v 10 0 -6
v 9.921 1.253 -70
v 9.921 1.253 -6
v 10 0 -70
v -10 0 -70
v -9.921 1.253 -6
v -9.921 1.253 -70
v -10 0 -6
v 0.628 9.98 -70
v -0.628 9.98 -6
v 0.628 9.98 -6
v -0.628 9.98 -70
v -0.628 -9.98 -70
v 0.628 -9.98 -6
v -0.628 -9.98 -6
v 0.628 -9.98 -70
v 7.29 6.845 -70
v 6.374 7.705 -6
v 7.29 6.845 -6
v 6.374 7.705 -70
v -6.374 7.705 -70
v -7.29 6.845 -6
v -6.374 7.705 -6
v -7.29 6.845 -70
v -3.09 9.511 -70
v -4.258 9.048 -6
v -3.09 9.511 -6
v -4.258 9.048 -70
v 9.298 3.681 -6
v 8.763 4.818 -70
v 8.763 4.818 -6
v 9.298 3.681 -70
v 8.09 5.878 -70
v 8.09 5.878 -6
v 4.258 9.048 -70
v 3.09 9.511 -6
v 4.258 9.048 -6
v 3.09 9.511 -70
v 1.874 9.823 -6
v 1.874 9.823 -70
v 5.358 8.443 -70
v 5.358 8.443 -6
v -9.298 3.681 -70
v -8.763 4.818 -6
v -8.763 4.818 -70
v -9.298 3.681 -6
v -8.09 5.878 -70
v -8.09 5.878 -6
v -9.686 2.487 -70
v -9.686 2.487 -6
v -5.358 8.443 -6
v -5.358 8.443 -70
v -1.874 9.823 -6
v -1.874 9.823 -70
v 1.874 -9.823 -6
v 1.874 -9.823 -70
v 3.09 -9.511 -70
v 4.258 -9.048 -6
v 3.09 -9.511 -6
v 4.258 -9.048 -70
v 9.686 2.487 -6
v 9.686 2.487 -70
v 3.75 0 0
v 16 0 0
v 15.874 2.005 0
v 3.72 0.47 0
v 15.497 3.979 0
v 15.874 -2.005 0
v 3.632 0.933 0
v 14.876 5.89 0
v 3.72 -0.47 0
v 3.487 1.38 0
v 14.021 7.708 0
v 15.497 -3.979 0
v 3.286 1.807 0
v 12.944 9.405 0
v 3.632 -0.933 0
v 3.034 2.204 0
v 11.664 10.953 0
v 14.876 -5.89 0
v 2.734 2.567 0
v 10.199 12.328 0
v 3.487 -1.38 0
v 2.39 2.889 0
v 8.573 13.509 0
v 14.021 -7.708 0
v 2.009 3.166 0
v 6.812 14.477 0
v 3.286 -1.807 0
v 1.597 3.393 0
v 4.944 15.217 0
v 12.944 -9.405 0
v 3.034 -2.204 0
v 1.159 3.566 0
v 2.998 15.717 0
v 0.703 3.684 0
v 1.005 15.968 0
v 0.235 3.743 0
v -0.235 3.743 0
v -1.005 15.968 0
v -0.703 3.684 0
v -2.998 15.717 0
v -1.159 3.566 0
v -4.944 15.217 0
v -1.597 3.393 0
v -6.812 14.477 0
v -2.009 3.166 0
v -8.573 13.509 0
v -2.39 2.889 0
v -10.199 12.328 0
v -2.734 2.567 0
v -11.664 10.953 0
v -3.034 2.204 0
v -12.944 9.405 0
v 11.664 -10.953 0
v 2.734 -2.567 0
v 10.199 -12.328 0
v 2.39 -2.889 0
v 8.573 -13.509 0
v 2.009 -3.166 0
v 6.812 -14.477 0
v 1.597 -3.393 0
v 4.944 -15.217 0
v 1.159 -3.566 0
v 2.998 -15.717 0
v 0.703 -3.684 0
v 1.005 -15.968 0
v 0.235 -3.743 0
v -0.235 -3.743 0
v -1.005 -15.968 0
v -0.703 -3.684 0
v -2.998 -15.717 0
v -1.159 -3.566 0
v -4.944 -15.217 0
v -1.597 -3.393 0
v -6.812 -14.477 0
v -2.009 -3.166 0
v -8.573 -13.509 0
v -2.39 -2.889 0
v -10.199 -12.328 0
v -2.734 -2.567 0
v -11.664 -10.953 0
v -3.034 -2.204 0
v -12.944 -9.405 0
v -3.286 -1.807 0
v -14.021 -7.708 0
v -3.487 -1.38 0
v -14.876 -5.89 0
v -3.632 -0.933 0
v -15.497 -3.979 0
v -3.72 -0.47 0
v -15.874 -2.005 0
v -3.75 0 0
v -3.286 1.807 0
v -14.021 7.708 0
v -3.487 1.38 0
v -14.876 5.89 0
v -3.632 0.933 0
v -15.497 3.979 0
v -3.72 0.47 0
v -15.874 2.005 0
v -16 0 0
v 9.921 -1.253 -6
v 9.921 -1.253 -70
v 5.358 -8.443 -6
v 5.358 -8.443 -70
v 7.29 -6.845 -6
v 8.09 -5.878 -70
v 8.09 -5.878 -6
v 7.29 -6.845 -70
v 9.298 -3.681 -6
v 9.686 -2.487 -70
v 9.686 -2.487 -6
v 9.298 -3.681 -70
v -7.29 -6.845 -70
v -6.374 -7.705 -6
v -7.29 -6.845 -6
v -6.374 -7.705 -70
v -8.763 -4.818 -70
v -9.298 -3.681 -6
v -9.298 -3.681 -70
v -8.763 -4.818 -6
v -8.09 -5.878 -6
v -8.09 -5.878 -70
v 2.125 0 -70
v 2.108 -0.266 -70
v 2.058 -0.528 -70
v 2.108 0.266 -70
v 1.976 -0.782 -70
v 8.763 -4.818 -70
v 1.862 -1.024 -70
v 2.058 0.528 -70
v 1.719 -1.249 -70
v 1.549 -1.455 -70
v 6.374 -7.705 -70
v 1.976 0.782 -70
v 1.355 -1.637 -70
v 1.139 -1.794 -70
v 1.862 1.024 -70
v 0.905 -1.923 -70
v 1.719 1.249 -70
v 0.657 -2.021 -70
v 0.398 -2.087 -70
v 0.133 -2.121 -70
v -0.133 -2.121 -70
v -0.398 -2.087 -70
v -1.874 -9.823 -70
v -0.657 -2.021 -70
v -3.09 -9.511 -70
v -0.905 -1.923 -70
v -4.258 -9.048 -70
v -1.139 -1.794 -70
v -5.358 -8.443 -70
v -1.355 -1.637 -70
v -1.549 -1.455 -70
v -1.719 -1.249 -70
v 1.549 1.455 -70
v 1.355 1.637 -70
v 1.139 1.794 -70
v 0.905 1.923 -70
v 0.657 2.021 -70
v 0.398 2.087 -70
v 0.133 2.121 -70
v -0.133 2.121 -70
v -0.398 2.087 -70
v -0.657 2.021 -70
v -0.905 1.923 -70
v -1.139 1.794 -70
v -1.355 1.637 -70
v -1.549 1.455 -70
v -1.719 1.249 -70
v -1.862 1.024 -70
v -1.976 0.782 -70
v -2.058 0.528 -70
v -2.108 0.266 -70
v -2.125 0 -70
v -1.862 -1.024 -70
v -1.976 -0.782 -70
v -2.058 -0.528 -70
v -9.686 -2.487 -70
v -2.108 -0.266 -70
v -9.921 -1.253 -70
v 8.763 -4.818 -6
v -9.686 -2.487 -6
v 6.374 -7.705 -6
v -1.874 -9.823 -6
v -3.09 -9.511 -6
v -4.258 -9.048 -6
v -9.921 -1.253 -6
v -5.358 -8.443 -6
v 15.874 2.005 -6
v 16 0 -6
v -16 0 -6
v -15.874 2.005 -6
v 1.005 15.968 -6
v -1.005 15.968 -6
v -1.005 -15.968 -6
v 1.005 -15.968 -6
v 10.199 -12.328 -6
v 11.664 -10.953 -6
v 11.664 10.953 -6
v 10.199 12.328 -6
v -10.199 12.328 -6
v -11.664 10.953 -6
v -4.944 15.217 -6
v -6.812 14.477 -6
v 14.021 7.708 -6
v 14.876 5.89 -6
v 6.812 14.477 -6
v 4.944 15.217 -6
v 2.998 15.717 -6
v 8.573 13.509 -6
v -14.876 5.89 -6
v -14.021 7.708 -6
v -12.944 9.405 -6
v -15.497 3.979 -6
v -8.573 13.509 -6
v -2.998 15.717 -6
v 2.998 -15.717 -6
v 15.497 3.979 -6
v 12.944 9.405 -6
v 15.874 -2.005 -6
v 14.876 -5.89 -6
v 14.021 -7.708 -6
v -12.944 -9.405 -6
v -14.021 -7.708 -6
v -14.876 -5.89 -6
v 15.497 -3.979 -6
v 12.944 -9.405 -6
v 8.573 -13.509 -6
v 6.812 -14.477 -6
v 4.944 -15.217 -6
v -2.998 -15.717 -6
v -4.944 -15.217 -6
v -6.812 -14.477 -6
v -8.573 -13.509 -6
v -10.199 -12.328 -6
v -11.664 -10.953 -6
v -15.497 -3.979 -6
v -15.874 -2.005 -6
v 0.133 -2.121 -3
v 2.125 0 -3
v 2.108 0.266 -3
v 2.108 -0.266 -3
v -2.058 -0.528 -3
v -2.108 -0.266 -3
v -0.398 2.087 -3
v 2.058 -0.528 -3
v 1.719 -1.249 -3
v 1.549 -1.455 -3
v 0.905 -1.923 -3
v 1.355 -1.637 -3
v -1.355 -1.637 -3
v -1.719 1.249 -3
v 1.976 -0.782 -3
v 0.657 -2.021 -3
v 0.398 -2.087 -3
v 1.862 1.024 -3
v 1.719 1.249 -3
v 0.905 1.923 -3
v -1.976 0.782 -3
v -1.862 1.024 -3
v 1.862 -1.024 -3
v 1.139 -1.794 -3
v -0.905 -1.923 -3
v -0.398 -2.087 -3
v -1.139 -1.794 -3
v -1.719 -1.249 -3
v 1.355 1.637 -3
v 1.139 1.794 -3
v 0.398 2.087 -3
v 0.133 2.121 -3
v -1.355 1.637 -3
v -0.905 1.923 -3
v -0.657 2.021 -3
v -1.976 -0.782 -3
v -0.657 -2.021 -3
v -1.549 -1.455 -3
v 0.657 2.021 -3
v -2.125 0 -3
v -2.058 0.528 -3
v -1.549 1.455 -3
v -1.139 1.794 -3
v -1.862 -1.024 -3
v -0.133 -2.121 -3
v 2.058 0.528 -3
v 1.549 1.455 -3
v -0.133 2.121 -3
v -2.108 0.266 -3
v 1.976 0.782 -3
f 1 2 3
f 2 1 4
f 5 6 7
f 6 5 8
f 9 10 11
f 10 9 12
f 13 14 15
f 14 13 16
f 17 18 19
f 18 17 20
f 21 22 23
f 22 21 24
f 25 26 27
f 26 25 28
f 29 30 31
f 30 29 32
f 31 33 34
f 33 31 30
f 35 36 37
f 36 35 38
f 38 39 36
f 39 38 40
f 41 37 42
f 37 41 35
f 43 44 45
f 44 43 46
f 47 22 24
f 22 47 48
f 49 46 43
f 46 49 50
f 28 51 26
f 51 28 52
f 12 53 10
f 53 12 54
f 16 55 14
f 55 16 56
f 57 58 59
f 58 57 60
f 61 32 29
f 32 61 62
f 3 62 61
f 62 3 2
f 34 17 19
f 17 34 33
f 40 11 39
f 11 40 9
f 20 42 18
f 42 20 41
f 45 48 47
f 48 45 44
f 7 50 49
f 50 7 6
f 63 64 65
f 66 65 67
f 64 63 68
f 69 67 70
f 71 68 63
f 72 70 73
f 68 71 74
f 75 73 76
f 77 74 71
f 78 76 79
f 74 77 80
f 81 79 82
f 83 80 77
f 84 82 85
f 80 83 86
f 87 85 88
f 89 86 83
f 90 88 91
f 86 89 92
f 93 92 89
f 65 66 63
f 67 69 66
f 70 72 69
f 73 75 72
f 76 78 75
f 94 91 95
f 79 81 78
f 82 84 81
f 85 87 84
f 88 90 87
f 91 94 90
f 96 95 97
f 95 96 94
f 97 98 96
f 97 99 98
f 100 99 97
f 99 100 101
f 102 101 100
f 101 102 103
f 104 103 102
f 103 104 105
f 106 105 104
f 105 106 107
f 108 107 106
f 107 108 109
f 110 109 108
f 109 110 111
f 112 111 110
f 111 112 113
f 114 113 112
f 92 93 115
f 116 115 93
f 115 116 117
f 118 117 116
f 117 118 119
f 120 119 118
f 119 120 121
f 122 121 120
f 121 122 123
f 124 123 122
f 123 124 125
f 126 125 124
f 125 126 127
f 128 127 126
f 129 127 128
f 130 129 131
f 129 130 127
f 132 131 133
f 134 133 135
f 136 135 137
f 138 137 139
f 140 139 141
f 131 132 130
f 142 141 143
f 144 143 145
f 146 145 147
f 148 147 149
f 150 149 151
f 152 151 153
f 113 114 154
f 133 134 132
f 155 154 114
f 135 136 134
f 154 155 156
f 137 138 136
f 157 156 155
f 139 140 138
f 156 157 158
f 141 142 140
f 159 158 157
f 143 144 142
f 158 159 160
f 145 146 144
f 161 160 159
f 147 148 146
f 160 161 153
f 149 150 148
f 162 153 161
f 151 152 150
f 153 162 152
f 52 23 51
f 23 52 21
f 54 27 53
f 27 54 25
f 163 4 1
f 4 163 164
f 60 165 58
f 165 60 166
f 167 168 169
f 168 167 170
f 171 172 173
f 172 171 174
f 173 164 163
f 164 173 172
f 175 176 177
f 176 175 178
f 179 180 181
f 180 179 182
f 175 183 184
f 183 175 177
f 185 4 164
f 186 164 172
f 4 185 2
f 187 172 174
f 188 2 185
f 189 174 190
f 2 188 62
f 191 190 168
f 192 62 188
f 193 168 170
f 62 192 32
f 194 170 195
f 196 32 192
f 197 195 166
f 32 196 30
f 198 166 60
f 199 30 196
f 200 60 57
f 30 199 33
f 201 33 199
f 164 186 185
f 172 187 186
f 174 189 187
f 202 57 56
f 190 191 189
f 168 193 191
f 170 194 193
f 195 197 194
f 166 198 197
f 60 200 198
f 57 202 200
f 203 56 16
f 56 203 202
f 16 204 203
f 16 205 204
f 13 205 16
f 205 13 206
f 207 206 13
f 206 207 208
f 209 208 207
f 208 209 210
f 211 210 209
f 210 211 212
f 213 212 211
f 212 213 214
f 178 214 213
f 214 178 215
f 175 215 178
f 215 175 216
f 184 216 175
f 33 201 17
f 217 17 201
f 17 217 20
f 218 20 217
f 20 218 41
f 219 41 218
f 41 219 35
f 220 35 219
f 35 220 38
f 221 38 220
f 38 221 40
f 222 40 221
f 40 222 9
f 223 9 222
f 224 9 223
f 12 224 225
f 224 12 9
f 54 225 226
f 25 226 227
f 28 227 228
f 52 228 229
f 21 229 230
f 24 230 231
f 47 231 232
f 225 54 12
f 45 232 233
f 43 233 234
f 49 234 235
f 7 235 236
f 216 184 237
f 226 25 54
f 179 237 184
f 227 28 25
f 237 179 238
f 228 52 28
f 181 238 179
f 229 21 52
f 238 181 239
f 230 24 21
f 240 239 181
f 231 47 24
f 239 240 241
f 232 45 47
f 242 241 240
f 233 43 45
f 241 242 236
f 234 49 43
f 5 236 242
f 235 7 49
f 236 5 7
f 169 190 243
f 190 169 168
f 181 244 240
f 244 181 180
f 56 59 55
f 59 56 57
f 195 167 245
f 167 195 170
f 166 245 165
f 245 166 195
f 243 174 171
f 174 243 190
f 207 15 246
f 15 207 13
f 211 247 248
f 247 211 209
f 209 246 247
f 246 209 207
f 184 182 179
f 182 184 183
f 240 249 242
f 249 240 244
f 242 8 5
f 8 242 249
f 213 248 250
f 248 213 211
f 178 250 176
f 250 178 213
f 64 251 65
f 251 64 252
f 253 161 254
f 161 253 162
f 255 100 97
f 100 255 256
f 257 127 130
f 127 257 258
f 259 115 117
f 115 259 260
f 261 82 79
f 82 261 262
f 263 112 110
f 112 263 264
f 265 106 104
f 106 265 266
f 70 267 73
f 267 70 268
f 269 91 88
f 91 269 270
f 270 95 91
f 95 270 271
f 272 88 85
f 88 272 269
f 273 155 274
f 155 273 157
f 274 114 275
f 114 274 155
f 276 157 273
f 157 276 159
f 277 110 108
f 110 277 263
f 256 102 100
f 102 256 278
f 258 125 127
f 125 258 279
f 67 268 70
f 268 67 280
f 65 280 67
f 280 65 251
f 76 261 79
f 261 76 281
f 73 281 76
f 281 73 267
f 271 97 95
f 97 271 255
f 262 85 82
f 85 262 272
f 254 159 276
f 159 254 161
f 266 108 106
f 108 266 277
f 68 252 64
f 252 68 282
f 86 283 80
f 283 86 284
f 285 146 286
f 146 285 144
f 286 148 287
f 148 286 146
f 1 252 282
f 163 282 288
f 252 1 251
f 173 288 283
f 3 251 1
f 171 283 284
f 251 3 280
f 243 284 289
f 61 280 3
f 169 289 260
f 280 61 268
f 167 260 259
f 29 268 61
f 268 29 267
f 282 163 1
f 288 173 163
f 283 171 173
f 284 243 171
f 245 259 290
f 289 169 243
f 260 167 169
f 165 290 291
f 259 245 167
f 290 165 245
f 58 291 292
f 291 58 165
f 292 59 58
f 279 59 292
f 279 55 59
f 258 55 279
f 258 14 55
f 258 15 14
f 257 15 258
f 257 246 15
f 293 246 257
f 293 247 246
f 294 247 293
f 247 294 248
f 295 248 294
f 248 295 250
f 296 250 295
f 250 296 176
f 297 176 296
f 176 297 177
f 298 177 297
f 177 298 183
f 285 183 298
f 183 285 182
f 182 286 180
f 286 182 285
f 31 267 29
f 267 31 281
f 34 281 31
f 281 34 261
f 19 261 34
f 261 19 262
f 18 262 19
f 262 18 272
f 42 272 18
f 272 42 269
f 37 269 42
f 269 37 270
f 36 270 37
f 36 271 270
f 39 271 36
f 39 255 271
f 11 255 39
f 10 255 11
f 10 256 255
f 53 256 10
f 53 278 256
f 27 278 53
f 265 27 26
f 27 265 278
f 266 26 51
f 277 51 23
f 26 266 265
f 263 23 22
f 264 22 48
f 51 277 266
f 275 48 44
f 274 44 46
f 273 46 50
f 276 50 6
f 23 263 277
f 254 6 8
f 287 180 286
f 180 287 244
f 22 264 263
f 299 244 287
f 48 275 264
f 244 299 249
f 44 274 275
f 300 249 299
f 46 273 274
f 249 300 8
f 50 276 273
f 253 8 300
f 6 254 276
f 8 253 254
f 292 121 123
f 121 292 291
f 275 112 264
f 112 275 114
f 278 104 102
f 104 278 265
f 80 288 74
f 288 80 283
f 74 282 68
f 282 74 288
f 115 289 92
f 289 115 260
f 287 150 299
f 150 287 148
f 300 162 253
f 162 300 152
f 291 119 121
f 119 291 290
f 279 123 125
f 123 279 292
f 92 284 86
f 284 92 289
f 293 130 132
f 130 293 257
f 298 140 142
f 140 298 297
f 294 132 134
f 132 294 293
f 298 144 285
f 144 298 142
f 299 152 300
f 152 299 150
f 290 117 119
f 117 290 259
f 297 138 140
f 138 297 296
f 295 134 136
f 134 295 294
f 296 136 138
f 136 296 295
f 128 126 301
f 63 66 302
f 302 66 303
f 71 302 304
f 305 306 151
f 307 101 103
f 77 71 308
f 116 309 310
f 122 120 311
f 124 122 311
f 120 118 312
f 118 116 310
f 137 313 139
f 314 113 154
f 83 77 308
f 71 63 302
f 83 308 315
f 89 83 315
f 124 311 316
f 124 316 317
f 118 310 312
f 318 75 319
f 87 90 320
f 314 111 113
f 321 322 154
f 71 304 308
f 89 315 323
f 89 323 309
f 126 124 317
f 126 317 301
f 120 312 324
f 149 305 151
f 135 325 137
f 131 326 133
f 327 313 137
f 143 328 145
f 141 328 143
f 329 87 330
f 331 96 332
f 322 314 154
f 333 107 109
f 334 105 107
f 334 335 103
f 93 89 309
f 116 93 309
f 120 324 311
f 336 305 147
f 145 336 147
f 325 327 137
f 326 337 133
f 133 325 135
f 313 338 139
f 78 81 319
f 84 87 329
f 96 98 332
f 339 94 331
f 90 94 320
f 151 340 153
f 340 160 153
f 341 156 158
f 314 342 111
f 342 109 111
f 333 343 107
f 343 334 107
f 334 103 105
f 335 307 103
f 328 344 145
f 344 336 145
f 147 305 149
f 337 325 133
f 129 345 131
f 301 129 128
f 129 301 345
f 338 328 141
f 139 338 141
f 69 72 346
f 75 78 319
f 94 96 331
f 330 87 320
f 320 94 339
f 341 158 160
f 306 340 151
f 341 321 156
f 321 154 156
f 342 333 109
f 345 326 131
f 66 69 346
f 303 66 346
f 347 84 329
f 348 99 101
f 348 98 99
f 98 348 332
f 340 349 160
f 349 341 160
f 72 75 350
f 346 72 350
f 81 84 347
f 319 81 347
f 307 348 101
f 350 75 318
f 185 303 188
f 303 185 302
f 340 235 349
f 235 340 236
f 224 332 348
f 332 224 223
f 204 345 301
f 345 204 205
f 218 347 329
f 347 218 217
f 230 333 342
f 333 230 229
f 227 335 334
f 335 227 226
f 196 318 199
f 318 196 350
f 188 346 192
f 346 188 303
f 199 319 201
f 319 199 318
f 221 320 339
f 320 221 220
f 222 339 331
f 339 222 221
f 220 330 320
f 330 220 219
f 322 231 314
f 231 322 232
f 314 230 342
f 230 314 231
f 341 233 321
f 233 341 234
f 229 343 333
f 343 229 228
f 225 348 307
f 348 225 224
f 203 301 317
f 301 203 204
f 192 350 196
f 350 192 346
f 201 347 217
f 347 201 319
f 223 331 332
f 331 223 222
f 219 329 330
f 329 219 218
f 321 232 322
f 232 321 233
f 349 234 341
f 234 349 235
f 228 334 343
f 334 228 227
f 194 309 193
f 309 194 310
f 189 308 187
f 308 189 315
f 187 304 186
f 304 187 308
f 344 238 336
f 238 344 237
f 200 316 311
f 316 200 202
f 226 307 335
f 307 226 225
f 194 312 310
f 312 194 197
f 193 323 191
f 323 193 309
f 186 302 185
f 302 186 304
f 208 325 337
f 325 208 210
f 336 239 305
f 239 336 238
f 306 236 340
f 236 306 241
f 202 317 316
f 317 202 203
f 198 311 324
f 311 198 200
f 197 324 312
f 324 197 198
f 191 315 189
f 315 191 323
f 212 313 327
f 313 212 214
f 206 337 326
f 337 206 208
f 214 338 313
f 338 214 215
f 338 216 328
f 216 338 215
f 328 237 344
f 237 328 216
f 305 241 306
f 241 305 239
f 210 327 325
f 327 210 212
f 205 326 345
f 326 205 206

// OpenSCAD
$fn = 50;


difference() {
	union() {
		translate(v = [0, 0, -70.0000000000]) {
			cylinder(h = 70, r = 10.0000000000);
		}
		translate(v = [0, 0, -6.0000000000]) {
			cylinder(h = 6, r = 16.0000000000);
		}
	}
	union() {
		translate(v = [0, 0, 0]) {
			rotate(a = [0, 0, 0]) {
				difference() {
					union() {
						#translate(v = [0, 0, -70.0000000000]) {
							cylinder(h = 70, r = 2.0000000000);
						}
						#translate(v = [0, 0, -3]) {
							cylinder(h = 3, r = 10.0000000000, r1 = 2.1250000000, r2 = 3.7500000000);
						}
						#translate(v = [0, 0, -70.0000000000]) {
							cylinder(h = 70, r = 2.1250000000);
						}
						#translate(v = [0, 0, -70.0000000000]) {
							cylinder(h = 70, r = 2.0000000000);
						}
					}
					union();
				}
			}
		}
	}
}
